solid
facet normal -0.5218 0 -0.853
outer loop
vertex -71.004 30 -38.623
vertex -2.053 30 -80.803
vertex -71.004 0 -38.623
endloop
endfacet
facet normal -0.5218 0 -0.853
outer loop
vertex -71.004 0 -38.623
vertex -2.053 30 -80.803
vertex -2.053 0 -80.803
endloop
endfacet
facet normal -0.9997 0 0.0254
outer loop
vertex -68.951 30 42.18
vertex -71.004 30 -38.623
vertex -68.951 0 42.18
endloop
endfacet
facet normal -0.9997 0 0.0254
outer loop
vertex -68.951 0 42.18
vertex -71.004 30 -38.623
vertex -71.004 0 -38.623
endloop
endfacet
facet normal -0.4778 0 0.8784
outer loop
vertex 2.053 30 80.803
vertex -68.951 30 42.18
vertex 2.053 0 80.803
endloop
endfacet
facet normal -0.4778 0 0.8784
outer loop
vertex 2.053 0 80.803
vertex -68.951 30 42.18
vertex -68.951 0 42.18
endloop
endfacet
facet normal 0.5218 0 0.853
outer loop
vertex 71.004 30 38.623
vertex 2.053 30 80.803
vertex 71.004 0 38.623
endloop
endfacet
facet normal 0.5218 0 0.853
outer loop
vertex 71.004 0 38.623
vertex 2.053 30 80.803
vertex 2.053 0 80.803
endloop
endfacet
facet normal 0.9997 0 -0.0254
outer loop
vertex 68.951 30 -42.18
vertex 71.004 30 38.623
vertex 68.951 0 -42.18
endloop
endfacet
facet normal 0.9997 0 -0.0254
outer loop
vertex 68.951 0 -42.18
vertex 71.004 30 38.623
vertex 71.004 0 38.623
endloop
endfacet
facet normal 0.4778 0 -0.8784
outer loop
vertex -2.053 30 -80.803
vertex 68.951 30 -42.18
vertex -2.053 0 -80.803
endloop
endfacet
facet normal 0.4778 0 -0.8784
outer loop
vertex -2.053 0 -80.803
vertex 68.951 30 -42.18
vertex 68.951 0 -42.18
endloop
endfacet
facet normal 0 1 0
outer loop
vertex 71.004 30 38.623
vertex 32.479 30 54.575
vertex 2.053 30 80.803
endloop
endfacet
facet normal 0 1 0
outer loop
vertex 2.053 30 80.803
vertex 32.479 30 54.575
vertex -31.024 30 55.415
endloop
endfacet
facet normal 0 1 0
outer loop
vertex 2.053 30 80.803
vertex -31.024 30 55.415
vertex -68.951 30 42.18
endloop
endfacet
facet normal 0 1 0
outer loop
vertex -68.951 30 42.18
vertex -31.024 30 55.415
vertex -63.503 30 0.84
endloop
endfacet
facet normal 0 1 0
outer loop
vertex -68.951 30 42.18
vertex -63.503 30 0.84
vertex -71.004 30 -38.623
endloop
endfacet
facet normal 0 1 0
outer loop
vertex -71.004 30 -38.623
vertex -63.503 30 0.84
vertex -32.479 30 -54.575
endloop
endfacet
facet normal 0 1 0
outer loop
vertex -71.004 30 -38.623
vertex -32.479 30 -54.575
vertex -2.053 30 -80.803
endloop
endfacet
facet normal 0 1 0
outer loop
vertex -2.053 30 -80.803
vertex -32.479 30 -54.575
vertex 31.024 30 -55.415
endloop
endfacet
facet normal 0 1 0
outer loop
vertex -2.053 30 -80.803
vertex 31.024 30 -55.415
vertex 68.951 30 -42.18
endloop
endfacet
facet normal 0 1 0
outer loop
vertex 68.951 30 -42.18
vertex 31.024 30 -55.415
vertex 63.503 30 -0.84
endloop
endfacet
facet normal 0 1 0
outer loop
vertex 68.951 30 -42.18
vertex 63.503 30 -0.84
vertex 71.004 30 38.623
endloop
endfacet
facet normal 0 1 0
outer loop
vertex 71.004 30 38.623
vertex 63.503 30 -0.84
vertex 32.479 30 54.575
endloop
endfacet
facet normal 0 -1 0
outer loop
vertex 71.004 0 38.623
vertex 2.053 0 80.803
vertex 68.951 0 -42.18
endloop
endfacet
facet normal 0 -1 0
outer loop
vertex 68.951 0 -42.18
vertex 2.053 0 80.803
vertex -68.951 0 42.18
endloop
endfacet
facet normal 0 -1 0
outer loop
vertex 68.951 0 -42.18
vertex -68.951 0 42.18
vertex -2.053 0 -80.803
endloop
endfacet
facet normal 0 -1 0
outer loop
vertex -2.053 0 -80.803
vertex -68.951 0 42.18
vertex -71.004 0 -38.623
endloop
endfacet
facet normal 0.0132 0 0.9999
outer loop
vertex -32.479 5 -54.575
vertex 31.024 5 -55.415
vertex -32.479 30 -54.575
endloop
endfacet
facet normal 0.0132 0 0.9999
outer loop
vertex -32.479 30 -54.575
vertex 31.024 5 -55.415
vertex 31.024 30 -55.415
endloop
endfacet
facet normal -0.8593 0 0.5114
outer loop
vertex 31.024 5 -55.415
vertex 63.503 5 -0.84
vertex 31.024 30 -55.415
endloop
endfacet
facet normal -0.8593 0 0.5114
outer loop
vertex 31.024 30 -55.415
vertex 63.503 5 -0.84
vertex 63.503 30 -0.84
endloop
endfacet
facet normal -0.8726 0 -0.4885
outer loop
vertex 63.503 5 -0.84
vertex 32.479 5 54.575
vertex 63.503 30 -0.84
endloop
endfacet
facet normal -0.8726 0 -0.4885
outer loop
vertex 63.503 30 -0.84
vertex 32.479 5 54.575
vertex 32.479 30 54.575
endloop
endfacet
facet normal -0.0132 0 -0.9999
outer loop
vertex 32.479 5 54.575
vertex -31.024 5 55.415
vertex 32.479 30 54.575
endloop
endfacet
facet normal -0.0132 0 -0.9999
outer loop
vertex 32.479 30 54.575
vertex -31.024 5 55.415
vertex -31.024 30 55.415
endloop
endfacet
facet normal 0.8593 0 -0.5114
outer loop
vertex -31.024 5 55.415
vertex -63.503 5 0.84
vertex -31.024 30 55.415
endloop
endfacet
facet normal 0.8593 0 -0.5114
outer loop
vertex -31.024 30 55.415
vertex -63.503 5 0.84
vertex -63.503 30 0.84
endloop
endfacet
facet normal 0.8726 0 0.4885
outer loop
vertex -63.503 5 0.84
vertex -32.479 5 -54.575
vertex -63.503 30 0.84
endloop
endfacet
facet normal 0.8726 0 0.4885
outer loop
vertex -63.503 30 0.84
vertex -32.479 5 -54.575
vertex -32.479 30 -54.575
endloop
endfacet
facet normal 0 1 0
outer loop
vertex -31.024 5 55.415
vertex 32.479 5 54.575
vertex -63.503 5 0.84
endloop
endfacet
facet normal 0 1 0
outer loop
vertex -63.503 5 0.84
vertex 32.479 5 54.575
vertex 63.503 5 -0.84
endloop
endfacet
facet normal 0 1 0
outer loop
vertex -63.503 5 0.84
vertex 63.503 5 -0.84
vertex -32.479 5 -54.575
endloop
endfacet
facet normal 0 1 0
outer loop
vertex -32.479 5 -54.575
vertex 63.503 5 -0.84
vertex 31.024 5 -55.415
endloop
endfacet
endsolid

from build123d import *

# Parameters (mm, degrees)
BOSS_EXTRUDE1_DEPTH = 30
CUT_EXTRUDE1_DEPTH  = 25


with BuildPart() as part:
    # Sketch2 → Boss-Extrude1 (new body)
    with BuildSketch(Plane(origin=(0, 0, 0), x_dir=(1, 0, 0), z_dir=(0, 1, 0))):
        Polygon((-71.004000985, 38.623376049), (-68.950825331, -42.179580599), (2.053175654, -80.802956648), (71.004000985, -38.623376049), (68.950825331, 42.179580599), (-2.053175654, 80.802956648), align=None)
    extrude(amount=BOSS_EXTRUDE1_DEPTH)

    # Sketch3 → Cut-Extrude1 (cut)
    with BuildSketch(Plane(origin=(0, 30, 0), x_dir=(1, 0, 0), z_dir=(0, 1, 0))):
        Polygon((-32.478654732, 54.575363674), (-63.502978728, -0.839658241), (-31.024323997, -55.415021915), (32.478654732, -54.575363674), (63.502978728, 0.839658241), (31.024323997, 55.415021915), align=None)
    extrude(amount=-CUT_EXTRUDE1_DEPTH, mode=Mode.SUBTRACT)


solid = part.part
